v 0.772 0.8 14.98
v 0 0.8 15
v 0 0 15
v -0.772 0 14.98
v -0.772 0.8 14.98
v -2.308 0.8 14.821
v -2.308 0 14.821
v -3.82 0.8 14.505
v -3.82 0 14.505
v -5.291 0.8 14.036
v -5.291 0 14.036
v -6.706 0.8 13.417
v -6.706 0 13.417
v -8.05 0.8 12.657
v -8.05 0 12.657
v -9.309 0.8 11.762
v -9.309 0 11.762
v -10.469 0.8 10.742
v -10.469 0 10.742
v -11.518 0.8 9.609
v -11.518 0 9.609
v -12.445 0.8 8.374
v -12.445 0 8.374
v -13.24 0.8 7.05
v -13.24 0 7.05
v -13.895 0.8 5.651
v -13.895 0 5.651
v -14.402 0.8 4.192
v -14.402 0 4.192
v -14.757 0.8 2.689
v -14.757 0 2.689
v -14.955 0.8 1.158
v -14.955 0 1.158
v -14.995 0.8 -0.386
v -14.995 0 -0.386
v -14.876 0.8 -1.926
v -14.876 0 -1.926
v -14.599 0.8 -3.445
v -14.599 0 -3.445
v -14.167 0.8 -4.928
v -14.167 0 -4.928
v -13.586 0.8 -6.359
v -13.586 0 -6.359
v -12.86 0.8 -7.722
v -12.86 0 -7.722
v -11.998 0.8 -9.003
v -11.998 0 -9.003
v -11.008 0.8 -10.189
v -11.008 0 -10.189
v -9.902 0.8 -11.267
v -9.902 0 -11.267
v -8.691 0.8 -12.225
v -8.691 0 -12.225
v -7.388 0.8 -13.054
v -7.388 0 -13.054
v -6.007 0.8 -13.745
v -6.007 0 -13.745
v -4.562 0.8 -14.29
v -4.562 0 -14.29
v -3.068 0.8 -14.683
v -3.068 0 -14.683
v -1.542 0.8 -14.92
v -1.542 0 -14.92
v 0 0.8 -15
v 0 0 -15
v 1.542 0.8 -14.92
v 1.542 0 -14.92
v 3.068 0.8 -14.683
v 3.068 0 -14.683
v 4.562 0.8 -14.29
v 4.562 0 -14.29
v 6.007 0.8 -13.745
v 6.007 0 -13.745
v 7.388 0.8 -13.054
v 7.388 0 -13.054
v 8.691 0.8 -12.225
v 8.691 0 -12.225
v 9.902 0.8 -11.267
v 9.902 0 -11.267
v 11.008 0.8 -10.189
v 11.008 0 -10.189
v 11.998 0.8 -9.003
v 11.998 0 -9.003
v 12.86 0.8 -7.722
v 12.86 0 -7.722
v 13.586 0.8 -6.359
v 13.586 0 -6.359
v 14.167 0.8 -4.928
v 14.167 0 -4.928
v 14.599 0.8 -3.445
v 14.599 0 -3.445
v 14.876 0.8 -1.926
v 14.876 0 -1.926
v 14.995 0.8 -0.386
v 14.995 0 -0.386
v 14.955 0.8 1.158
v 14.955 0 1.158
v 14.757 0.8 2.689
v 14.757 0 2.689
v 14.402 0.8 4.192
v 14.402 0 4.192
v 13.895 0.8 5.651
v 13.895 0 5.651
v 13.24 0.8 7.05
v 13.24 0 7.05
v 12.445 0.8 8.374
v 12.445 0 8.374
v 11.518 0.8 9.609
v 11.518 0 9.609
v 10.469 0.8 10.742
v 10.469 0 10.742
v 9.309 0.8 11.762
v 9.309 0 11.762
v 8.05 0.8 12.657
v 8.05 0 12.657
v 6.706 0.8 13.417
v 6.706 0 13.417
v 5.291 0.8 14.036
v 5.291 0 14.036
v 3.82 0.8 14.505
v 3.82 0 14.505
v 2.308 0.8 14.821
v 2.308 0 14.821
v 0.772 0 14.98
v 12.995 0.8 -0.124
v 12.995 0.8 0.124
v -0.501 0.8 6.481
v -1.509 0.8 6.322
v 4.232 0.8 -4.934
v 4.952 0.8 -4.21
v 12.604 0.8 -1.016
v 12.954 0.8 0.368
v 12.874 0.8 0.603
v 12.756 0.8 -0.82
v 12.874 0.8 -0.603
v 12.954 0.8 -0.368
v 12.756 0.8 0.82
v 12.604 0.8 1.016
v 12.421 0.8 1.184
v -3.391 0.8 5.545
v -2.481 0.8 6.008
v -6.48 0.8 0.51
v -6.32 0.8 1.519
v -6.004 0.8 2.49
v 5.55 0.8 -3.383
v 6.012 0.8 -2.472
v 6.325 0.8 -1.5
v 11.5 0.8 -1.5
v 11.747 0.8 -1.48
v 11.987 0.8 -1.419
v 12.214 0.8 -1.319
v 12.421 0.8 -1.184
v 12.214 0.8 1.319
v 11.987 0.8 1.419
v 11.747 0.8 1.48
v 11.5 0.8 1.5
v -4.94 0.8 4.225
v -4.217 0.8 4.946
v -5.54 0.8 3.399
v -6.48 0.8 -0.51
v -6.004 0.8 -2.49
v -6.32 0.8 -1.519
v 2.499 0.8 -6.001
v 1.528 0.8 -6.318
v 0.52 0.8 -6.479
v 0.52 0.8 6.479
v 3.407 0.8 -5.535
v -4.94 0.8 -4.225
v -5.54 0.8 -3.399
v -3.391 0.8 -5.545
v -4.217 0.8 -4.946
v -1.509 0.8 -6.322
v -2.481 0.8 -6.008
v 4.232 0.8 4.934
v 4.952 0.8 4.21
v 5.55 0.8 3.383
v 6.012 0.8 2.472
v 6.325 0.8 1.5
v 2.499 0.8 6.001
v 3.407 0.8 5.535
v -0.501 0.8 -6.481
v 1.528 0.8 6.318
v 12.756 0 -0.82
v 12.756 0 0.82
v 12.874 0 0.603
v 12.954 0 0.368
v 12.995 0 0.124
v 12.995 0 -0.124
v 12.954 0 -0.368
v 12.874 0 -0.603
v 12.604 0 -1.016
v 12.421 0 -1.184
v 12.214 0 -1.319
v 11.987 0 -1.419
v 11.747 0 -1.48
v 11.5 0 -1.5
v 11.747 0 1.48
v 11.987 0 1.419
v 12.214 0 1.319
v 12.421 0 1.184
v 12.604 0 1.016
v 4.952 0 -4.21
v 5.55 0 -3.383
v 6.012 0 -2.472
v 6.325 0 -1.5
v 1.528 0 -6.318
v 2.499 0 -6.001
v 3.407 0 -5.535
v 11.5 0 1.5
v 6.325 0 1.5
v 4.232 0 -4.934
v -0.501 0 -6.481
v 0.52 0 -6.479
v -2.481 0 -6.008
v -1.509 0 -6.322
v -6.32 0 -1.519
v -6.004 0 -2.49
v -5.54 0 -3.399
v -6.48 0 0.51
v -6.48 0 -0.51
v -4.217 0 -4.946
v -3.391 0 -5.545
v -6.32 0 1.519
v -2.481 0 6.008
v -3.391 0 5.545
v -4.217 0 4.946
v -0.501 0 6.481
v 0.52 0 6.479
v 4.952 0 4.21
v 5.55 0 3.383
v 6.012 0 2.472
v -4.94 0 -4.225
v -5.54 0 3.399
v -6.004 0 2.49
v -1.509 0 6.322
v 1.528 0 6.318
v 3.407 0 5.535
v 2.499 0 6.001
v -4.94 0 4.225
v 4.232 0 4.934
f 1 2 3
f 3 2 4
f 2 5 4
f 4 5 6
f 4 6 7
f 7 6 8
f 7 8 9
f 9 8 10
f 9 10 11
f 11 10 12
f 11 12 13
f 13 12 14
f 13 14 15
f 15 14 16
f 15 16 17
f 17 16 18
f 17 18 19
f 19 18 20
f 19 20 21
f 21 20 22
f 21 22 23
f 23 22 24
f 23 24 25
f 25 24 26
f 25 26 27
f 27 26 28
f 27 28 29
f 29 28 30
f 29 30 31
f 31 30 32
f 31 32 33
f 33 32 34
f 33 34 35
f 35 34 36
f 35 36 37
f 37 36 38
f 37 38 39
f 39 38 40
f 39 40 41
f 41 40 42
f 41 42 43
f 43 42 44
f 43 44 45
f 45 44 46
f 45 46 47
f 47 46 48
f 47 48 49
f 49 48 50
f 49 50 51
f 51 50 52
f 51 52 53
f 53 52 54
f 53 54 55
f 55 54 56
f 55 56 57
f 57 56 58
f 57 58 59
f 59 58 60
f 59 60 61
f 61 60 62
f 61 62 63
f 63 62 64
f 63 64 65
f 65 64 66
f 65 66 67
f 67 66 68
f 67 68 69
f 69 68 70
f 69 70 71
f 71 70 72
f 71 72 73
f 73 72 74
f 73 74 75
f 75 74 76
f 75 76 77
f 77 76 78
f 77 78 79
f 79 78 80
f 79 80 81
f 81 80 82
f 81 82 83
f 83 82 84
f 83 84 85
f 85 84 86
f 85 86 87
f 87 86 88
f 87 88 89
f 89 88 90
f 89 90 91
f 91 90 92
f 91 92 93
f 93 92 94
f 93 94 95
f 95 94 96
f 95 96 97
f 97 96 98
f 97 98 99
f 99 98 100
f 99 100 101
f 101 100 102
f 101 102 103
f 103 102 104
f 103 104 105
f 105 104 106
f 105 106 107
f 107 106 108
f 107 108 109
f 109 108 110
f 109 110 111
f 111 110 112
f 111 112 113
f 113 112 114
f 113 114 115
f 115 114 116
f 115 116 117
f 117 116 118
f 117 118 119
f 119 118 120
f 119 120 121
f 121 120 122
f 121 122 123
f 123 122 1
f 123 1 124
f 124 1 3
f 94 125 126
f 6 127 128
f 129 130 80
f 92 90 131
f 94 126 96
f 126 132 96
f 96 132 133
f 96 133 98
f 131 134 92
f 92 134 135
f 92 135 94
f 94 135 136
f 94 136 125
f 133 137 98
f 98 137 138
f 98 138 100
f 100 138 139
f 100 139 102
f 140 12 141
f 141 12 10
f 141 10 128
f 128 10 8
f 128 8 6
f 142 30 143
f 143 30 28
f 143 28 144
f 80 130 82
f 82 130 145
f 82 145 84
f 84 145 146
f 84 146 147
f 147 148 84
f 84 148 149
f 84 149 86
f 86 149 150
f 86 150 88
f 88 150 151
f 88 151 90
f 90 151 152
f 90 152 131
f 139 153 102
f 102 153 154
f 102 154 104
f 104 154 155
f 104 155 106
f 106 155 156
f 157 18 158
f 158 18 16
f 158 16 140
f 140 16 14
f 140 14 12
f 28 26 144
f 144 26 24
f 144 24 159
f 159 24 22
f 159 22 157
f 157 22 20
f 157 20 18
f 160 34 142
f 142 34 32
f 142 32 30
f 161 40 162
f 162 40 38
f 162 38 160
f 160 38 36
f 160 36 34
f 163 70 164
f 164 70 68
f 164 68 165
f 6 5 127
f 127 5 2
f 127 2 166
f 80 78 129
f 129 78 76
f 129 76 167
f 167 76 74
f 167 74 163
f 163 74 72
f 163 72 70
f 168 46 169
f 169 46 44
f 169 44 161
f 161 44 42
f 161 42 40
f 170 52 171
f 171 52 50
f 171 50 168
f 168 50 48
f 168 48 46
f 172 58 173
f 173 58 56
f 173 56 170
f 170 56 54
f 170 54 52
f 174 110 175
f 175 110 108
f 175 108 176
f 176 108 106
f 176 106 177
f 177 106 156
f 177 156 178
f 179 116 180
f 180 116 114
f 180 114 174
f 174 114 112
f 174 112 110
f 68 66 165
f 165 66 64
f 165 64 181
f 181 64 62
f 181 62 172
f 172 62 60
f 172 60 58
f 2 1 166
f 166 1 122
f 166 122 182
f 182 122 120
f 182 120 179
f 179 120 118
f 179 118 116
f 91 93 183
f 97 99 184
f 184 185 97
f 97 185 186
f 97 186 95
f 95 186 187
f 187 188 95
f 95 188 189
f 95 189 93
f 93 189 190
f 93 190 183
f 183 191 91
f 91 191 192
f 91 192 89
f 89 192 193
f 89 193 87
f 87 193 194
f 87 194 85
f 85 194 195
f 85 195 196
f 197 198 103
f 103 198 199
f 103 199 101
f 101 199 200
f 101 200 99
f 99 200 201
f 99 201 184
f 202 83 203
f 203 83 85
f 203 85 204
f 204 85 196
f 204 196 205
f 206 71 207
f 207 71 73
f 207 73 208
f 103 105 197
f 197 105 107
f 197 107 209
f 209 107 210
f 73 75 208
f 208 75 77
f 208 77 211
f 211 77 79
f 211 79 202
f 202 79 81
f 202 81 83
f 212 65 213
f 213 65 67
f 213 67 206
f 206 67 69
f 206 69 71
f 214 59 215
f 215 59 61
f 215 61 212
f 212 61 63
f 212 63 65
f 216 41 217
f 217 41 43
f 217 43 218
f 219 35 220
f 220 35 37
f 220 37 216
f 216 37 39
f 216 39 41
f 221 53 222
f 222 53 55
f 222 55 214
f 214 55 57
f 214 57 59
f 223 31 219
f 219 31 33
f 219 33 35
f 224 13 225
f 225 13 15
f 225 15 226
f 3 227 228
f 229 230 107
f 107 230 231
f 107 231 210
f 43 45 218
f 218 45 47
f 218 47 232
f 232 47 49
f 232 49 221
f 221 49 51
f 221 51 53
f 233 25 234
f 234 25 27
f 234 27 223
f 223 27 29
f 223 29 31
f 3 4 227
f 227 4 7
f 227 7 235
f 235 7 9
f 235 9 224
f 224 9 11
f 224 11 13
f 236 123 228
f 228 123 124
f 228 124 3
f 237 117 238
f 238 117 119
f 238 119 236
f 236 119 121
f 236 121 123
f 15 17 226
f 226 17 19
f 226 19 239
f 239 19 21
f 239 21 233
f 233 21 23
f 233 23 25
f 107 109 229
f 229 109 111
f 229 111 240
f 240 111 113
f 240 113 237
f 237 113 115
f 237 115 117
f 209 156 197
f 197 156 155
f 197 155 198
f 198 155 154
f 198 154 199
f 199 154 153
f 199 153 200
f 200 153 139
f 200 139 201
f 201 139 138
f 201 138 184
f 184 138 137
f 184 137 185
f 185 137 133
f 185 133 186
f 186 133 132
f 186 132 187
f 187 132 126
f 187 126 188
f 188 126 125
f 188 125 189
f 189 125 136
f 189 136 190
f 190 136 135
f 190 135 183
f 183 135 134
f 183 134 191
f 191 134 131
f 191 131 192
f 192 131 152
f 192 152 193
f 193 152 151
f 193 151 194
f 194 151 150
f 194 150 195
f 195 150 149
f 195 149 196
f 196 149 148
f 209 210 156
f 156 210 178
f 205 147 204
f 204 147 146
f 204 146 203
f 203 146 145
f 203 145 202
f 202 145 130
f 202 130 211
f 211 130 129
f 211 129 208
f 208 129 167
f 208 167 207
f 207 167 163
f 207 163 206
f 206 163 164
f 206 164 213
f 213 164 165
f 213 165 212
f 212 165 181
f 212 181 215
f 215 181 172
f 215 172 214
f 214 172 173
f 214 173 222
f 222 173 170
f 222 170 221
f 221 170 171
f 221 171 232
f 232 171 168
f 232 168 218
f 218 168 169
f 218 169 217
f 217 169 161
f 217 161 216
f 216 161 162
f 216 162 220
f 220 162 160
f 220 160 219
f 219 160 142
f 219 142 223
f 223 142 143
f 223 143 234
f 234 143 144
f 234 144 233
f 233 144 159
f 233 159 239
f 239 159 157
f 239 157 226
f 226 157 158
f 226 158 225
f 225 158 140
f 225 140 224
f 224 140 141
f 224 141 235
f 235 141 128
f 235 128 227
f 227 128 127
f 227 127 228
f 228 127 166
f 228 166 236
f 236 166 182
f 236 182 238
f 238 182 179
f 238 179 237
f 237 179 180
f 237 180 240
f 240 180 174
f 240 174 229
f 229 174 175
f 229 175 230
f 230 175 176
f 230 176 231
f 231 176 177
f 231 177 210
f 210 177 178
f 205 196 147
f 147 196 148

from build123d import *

# Parameters (mm, degrees)
SKETCH1_R           = 15
BOSS_EXTRUDE1_DEPTH = 0.8
CUT_EXTRUDE1_DEPTH  = 1.8


with BuildPart() as part:
    # Sketch1 → Boss-Extrude1 (new body)
    with BuildSketch(Plane(origin=(0, 0, 0), x_dir=(1, 0, 0), z_dir=(0, 1, 0))):
        Circle(SKETCH1_R)
    extrude(amount=BOSS_EXTRUDE1_DEPTH)

    # Sketch3 → Cut-Extrude1 (cut, through all)
    with BuildSketch(Plane(origin=(0, 0.8, 0), x_dir=(1, 0, 0), z_dir=(0, 1, 0))):
        with BuildLine():
            Line((6.32455532, -1.5), (11.5, -1.5))
            ThreePointArc((11.5, -1.5), (13, 0), (11.5, 1.5))
            Line((11.5, 1.5), (6.32455532, 1.5))
            ThreePointArc((6.32455532, 1.5), (-6.5, 0), (6.32455532, -1.5))
        make_face()
    extrude(amount=-CUT_EXTRUDE1_DEPTH, mode=Mode.SUBTRACT)


solid = part.part
